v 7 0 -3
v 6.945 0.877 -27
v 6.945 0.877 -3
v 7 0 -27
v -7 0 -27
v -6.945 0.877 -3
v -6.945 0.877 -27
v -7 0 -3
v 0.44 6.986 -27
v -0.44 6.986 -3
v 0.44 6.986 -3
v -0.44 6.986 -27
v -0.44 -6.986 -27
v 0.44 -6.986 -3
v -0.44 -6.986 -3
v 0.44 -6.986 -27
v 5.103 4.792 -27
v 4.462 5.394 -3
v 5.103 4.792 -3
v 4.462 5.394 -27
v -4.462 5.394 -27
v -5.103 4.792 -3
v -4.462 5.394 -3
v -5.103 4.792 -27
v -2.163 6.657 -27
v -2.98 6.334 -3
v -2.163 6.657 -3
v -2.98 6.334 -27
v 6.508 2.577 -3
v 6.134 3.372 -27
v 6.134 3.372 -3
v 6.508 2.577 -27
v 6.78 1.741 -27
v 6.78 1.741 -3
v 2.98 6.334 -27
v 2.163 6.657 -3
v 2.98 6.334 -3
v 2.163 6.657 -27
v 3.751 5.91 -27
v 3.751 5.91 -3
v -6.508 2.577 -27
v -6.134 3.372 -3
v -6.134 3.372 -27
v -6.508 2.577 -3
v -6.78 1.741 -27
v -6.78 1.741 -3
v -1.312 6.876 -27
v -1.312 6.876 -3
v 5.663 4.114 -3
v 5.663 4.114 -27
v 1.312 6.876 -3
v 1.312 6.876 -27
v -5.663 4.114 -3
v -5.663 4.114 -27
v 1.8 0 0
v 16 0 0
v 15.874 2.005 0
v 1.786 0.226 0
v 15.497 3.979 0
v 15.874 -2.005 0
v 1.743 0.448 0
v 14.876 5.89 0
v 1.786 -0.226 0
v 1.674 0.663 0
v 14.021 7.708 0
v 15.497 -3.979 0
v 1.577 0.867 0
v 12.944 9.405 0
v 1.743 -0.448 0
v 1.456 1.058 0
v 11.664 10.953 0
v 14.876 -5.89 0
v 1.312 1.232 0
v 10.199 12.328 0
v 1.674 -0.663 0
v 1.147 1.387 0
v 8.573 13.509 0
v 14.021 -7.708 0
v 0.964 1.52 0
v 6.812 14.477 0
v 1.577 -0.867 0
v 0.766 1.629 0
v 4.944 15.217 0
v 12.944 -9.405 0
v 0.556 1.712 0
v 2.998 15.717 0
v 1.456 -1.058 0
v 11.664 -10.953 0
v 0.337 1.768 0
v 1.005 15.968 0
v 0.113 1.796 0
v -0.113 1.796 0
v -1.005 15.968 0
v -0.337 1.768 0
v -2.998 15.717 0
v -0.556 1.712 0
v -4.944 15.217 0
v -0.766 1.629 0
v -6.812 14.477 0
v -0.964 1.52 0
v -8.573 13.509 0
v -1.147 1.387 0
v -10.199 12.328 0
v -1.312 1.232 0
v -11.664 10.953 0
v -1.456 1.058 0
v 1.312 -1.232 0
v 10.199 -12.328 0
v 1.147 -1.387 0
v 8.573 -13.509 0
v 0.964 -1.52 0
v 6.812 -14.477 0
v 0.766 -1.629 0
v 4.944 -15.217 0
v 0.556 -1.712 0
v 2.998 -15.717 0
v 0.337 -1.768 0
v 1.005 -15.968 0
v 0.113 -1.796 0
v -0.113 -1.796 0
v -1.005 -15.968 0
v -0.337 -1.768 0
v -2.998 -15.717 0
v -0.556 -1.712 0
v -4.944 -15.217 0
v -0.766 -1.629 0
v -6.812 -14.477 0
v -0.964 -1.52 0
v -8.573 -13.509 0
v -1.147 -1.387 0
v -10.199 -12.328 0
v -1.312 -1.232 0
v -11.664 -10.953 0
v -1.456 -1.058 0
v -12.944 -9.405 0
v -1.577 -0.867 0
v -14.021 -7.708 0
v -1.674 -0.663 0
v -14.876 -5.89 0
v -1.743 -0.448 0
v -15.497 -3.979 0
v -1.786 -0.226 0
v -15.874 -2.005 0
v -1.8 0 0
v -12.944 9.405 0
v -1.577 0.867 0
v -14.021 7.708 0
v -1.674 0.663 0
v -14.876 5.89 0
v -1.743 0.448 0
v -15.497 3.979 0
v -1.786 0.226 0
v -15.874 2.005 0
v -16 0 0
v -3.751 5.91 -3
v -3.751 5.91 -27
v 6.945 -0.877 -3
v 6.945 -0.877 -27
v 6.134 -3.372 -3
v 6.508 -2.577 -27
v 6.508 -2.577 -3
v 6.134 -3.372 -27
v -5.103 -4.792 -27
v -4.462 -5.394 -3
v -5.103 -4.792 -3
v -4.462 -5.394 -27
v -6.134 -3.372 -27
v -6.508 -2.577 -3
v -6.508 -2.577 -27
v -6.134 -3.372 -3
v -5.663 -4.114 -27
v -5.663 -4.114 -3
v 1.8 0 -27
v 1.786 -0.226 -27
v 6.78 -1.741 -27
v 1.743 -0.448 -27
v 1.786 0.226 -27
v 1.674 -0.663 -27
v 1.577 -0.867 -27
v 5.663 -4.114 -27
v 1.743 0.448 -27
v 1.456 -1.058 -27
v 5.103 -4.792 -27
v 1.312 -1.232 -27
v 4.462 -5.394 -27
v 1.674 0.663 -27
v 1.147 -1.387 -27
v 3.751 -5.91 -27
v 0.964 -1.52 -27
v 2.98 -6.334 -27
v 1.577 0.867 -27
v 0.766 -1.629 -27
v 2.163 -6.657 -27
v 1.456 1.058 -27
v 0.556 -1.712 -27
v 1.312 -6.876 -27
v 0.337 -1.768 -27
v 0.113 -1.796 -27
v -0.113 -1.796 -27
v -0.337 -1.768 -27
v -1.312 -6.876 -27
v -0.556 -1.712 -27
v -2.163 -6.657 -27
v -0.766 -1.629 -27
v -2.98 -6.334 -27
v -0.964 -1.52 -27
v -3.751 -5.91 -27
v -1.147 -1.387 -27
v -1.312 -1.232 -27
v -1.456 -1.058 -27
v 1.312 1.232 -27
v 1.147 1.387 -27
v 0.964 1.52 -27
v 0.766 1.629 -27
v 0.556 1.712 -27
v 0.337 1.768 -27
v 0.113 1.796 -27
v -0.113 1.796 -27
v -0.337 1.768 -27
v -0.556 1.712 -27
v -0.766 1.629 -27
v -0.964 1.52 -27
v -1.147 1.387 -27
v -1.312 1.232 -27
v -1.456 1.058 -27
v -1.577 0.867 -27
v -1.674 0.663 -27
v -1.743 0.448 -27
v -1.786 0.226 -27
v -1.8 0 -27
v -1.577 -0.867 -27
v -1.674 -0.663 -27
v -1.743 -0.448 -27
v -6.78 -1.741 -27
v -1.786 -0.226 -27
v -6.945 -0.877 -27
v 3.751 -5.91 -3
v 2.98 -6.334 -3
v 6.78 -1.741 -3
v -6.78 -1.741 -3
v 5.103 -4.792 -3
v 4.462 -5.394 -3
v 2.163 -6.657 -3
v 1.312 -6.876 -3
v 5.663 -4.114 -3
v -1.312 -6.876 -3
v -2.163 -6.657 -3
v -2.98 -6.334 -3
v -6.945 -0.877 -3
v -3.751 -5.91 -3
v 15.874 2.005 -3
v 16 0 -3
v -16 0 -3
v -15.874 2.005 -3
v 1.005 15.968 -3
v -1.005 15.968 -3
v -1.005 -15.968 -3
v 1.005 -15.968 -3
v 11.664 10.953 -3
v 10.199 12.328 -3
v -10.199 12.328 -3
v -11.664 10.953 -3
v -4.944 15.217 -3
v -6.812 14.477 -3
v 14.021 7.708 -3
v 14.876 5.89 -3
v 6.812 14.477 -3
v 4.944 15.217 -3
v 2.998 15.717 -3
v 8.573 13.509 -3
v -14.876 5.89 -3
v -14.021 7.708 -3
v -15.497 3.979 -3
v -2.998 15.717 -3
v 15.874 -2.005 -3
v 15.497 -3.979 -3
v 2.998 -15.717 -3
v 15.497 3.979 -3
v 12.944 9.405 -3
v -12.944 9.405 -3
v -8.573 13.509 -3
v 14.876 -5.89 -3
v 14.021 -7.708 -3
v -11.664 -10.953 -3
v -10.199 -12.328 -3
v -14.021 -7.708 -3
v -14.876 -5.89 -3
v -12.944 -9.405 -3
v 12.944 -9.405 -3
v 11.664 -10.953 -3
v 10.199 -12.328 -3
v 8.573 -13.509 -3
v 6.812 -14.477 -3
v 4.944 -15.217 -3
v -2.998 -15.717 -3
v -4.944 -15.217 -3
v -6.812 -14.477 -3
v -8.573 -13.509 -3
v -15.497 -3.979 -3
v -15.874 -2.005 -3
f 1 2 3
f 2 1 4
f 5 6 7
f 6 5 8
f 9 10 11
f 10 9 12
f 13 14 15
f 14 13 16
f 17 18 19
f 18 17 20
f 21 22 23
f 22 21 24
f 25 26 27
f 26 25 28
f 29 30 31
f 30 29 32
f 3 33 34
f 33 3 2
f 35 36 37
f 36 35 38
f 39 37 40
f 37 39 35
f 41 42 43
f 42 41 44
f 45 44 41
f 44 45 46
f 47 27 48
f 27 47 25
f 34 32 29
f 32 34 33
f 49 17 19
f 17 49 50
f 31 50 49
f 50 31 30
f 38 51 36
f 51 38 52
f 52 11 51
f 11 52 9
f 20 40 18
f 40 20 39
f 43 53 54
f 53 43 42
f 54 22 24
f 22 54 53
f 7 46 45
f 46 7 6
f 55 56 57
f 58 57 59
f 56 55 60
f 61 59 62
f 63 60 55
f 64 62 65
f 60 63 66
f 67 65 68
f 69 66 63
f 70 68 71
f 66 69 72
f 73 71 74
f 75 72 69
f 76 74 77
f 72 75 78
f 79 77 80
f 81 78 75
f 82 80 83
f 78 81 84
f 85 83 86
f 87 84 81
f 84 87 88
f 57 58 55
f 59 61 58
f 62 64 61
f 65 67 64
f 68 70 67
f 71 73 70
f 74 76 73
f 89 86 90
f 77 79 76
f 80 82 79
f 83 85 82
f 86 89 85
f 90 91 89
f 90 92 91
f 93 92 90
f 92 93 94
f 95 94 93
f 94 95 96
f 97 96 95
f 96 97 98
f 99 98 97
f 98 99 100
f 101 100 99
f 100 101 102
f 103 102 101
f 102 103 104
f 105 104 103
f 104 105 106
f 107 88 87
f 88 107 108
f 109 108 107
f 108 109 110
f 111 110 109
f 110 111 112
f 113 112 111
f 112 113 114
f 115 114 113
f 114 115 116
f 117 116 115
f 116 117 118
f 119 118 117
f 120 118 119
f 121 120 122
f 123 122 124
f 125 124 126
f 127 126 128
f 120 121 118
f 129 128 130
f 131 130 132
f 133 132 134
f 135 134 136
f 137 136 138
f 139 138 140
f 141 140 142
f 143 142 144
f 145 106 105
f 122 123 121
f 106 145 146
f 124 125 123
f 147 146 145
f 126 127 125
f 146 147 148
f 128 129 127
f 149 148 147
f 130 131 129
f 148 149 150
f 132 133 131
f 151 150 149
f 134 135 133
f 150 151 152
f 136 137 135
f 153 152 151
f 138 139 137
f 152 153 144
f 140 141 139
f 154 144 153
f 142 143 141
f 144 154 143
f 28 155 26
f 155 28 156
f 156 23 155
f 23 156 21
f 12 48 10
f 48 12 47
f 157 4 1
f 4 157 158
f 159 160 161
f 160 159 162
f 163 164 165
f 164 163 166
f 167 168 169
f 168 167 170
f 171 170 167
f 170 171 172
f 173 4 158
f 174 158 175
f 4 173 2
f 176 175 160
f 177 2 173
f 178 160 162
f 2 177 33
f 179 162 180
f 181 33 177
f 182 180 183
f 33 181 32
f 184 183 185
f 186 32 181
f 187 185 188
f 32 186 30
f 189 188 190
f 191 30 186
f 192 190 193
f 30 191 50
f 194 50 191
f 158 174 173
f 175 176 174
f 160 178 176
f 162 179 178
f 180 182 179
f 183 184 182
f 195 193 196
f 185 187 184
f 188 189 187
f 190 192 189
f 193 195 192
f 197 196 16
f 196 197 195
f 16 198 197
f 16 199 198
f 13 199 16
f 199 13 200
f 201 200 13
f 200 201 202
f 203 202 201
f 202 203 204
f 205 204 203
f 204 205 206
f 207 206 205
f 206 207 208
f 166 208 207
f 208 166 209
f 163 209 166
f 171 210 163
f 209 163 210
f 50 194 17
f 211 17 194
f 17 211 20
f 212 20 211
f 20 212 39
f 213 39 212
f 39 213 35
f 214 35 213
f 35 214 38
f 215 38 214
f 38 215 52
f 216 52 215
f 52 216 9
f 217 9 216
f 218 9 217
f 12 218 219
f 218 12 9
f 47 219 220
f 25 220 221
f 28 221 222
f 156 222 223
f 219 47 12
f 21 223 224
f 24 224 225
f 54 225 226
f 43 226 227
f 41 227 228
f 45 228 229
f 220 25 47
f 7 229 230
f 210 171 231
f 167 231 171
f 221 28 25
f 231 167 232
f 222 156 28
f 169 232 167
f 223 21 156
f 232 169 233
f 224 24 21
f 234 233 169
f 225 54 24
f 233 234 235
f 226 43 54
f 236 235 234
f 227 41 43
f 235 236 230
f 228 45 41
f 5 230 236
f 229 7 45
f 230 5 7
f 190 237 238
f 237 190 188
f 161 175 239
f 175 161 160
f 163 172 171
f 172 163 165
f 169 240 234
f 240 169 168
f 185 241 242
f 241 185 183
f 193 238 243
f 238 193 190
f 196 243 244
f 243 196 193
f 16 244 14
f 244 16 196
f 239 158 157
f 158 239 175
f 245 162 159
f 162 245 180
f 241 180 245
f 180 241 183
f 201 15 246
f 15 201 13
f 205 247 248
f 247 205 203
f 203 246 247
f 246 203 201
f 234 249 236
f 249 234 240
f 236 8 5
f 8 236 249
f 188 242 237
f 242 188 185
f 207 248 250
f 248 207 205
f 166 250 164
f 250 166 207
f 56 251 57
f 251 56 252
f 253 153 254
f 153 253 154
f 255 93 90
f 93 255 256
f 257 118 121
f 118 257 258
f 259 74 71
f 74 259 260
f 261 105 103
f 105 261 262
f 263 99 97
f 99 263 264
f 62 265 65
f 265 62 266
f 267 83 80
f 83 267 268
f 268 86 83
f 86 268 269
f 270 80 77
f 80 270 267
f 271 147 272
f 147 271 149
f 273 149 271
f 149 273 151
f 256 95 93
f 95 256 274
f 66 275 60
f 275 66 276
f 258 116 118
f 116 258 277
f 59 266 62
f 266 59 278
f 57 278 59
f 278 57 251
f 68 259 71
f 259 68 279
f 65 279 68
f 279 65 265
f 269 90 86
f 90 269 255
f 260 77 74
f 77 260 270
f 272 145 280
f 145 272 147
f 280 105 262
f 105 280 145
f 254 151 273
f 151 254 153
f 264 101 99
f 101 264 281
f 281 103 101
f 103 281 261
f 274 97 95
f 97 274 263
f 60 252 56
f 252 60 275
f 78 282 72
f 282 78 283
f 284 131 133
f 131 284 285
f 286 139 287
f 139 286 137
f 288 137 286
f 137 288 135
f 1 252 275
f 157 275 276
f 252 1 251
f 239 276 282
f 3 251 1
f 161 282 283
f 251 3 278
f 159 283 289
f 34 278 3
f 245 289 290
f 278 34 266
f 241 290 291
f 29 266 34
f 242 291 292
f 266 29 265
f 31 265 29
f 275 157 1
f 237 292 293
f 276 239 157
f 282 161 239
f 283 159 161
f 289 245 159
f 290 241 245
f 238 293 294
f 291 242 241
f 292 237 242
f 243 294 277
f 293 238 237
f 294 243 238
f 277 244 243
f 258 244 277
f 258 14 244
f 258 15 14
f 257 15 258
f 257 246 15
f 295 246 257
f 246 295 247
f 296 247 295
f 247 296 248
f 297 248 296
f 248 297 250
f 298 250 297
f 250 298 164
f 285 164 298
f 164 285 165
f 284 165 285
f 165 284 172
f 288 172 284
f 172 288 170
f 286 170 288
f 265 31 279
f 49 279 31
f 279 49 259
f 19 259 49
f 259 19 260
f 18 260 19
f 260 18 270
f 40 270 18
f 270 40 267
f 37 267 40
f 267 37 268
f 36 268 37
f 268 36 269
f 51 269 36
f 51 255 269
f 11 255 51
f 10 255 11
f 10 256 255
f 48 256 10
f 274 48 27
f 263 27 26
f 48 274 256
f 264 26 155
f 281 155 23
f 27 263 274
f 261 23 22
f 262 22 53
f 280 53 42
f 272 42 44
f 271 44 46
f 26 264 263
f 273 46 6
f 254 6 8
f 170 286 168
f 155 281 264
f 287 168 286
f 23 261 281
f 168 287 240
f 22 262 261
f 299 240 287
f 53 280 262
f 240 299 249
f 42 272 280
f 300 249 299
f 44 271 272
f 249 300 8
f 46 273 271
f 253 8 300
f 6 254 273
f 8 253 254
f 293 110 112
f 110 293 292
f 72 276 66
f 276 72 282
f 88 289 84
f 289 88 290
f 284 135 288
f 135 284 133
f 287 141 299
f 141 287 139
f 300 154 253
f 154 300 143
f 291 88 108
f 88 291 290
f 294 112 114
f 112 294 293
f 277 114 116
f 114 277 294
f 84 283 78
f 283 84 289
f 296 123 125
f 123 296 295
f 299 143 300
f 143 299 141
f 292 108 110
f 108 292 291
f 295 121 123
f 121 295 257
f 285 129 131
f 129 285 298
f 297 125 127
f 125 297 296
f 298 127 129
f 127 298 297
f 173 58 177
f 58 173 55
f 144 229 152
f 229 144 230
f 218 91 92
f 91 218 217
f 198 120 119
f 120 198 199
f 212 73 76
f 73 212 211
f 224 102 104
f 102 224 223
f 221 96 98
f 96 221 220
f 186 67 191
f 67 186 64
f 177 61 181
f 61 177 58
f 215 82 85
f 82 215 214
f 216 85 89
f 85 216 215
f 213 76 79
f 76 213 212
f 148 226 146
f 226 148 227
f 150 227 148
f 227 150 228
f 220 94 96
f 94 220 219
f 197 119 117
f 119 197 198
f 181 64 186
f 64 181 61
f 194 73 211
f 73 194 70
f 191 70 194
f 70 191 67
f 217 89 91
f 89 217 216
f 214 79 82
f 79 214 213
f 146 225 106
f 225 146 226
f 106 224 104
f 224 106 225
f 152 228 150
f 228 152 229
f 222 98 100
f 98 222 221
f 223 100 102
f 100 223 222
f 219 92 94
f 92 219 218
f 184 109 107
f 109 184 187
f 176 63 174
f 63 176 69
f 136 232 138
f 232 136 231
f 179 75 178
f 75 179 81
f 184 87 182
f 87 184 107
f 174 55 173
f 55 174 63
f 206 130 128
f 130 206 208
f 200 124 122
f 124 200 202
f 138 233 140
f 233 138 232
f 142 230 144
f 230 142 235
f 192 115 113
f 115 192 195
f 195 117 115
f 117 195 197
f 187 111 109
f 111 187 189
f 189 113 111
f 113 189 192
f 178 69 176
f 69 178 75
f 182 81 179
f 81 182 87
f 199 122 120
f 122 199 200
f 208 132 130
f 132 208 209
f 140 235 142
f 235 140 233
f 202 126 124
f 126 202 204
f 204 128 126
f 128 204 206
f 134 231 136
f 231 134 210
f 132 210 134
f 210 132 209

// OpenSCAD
$fn = 50;


difference() {
	union() {
		translate(v = [0, 0, -27.0000000000]) {
			cylinder(h = 27, r = 7.0000000000);
		}
		translate(v = [0, 0, -3.0000000000]) {
			cylinder(h = 3, r = 16.0000000000);
		}
	}
	union() {
		#translate(v = [0, 0, -27]) {
			cylinder(h = 27, r = 1.8000000000);
		}
	}
}
